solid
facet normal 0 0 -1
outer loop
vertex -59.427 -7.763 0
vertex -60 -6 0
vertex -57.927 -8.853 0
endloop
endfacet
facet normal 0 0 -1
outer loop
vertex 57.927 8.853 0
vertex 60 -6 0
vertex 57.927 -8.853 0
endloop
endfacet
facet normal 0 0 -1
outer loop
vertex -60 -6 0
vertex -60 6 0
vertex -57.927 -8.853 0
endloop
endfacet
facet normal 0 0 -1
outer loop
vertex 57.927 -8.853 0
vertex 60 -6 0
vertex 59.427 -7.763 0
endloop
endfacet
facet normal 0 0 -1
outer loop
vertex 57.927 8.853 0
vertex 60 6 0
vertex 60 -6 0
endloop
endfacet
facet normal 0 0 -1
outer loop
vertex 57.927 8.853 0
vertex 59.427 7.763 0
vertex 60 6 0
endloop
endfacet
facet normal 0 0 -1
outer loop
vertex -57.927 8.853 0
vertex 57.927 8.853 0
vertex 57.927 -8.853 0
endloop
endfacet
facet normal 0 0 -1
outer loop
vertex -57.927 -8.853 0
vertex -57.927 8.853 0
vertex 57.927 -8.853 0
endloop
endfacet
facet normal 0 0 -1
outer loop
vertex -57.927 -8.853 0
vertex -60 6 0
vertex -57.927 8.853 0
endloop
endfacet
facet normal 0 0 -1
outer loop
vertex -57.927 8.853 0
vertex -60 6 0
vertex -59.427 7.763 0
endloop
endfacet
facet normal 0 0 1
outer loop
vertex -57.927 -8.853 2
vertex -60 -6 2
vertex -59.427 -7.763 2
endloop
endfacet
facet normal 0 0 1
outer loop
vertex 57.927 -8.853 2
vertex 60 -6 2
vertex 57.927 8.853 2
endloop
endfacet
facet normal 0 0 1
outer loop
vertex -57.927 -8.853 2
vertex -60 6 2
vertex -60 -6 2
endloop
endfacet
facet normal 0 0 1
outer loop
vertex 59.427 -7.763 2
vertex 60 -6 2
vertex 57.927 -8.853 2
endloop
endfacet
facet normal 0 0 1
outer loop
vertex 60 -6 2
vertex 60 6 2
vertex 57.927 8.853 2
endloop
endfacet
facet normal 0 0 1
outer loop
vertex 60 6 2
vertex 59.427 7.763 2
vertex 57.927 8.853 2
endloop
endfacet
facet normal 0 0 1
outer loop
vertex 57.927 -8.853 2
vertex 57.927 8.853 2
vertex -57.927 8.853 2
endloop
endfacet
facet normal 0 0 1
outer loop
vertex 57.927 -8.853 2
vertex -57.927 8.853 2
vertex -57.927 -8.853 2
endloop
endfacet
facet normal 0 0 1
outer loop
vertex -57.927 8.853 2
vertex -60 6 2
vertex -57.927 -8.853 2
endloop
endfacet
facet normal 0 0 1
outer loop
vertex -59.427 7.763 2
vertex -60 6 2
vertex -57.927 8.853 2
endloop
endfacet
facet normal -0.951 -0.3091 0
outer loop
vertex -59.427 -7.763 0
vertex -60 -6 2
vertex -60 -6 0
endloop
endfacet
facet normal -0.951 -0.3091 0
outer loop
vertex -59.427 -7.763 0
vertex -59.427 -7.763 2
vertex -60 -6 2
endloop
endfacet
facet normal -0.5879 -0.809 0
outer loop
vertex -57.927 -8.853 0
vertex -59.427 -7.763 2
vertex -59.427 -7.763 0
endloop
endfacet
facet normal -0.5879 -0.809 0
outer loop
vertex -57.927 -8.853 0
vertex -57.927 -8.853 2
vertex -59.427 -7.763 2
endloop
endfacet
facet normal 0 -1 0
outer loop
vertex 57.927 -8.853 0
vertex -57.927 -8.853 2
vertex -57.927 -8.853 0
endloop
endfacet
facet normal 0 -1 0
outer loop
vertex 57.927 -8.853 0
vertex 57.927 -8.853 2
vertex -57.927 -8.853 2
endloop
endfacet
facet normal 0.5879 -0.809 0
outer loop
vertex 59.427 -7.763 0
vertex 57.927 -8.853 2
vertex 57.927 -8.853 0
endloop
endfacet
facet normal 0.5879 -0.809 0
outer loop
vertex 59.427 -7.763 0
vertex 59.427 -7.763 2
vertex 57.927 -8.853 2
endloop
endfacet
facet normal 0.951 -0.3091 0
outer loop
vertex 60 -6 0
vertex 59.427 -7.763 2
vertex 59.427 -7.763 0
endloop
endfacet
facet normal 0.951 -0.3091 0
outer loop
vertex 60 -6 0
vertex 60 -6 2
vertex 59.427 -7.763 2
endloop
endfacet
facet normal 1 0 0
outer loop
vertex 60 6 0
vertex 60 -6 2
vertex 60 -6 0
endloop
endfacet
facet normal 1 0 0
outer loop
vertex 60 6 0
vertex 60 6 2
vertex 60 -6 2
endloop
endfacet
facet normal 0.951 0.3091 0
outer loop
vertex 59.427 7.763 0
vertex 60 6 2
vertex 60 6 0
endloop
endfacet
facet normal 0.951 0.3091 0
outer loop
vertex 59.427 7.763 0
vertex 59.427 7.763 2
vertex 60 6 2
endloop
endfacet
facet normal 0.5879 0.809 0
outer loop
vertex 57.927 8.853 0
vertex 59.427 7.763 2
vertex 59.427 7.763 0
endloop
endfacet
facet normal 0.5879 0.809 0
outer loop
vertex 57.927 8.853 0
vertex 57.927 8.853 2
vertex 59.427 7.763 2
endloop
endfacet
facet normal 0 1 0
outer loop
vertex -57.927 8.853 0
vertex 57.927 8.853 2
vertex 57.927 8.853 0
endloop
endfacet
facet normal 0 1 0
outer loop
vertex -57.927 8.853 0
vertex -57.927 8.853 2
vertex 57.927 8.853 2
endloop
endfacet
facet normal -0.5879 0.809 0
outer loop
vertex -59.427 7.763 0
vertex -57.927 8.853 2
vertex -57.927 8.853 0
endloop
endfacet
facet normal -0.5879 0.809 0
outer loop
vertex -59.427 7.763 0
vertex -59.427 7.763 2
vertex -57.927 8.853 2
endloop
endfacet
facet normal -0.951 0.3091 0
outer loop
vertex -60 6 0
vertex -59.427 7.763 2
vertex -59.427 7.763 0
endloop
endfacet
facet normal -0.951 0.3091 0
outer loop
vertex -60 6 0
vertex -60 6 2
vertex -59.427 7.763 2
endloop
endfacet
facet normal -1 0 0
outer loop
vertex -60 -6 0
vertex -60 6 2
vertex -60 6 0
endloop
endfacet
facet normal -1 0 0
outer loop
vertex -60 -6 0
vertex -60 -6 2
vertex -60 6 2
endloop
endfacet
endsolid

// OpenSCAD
// file: ../lib/project/util.scad
// lib/project/util.scad

module rounded_rect_2d(size = [10, 10], r = 2) {
  x = size[0];
  y = size[1];
  rr = min(r, min(x, y) / 2);

  hull() {
    for (sx = [-1, 1], sy = [-1, 1]) {
      translate([sx * (x / 2 - rr), sy * (y / 2 - rr)])
        circle(r = rr);
    }
  }
}
// file: ../lib/project/params.scad
// lib/project/params.scad
// Shared project parameters for the final tray and all fit-test models.

debug = false;

// Main tray footprint.
tray_corner_r = 15;

// Top tray shell.
tray_floor_t = 2.4;
tray_wall_h = 14;
top_wall_w = 10;
rim_inner_taper = 4.0;
glue_rabbet_h = 1.6;
glue_rabbet_w = 3.2;
glue_rabbet_side_clearance = 0.3;
glue_rabbet_vertical_clearance = 0.5;

// Underside support lip and rear support section.
support_lip_drop = 15;
support_lip_w = 10;
front_lip_forward_shift = 4;
front_lip_back_extra = 5;
front_lip_bottom_back_extra = 0;
side_lip_inner_extra = 2.5;
side_lip_bottom_inner_extra = 0;
console_clear_w = 320;
side_lip_run = 170;
tray_w = console_clear_w + 2 * support_lip_w;
tray_d = side_lip_run + support_lip_w;
front_extension = 45;
rear_gap_w = 28;
rear_tongue_side_margin = 20;
rear_tongue_w = tray_w - 2 * rear_tongue_side_margin;
rear_tongue_depth = 29;
rear_tongue_t = 4.0;

// Cup holder location and plug geometry.
cup_spacing = 135;
// Confirmed from fit checks: move plugs 39 mm rearward from the prior position.
cup_y_from_front = 111;
full_plug_top_d = 90;
full_plug_bottom_d = 78;
full_plug_h = 71;
plug_depth_fraction = 0.333333;
plug_top_d = full_plug_top_d;
plug_bottom_d =
  plug_depth_fraction * full_plug_bottom_d +
  (1.0 - plug_depth_fraction) * full_plug_top_d;
plug_h = full_plug_h * plug_depth_fraction;
plug_shell_t = 1.6;
plug_clearance_z = 0;
cup_rim_w = 7;
cup_rim_h = 5;

// Optional underside splice plate for joining printed tray halves.
splice_plate_enable = true;
splice_plate_w = 120;
splice_plate_d = 18;
splice_plate_t = 2;
splice_plate_corner_r = 3;
splice_plate_y_from_front = 40;
splice_plate_side_clearance = 0.3;
splice_plate_vertical_clearance = 0.5;
rear_splice_plate_enable = true;
rear_splice_plate_y_from_front = 184;

// Fit-test defaults.
test_plug_top_ds = [84, 85, 86];
test_spacing_values = [116, 118, 120];
test_lip_drop_values = [8, 10, 12];
test_rear_tongue_ts = [1.4, 1.8, 2.2];
test_frame_wall_w = 12;
test_front_zone_depth = 100;
test_rear_zone_depth = 56;
test_gap_section_w = 140;
test_coupon_spacing = 18;
test_front_to_back_slice_w = 10;
test_side_to_side_slice_w = 10;
test_rabbet_corner_section_size = 56;
test_rabbet_coupon_gap = 16;
test_rabbet_body_margin_from_groove = 15;
// main file
// models/splice_plate.scad
// Flat printed splice plate for reinforcing the joined half trays from below.

use <../lib/project/console_tray.scad>;
include <../lib/project/params.scad>;

// ---------- Public parameters (mm) ----------
// Parameters default to the shared tray splice-plate values.

module main() {
  splice_plate_variant(
    splice_plate_w = splice_plate_w,
    splice_plate_d = splice_plate_d,
    splice_plate_t = splice_plate_t,
    splice_plate_corner_r = splice_plate_corner_r
  );
}

main();
